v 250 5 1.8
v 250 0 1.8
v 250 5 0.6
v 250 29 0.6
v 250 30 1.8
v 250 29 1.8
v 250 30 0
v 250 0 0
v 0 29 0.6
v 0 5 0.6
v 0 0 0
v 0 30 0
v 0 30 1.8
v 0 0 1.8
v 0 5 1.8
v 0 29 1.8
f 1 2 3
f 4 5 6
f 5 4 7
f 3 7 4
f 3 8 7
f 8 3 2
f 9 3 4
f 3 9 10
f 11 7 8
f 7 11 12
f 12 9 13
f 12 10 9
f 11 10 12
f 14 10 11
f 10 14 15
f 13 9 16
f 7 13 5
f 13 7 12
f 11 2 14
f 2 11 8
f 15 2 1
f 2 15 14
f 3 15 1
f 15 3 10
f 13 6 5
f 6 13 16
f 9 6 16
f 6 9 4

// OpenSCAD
// SPDX-License-Identifier: GPL-2.0

base = [250, 30, 0.6];
spacer_h = 1.8;
wall = 1;


cube(base);
cube([base.x, 5, spacer_h]);
translate([0, base.y - wall, 0])
	cube([base.x, wall, spacer_h]);
